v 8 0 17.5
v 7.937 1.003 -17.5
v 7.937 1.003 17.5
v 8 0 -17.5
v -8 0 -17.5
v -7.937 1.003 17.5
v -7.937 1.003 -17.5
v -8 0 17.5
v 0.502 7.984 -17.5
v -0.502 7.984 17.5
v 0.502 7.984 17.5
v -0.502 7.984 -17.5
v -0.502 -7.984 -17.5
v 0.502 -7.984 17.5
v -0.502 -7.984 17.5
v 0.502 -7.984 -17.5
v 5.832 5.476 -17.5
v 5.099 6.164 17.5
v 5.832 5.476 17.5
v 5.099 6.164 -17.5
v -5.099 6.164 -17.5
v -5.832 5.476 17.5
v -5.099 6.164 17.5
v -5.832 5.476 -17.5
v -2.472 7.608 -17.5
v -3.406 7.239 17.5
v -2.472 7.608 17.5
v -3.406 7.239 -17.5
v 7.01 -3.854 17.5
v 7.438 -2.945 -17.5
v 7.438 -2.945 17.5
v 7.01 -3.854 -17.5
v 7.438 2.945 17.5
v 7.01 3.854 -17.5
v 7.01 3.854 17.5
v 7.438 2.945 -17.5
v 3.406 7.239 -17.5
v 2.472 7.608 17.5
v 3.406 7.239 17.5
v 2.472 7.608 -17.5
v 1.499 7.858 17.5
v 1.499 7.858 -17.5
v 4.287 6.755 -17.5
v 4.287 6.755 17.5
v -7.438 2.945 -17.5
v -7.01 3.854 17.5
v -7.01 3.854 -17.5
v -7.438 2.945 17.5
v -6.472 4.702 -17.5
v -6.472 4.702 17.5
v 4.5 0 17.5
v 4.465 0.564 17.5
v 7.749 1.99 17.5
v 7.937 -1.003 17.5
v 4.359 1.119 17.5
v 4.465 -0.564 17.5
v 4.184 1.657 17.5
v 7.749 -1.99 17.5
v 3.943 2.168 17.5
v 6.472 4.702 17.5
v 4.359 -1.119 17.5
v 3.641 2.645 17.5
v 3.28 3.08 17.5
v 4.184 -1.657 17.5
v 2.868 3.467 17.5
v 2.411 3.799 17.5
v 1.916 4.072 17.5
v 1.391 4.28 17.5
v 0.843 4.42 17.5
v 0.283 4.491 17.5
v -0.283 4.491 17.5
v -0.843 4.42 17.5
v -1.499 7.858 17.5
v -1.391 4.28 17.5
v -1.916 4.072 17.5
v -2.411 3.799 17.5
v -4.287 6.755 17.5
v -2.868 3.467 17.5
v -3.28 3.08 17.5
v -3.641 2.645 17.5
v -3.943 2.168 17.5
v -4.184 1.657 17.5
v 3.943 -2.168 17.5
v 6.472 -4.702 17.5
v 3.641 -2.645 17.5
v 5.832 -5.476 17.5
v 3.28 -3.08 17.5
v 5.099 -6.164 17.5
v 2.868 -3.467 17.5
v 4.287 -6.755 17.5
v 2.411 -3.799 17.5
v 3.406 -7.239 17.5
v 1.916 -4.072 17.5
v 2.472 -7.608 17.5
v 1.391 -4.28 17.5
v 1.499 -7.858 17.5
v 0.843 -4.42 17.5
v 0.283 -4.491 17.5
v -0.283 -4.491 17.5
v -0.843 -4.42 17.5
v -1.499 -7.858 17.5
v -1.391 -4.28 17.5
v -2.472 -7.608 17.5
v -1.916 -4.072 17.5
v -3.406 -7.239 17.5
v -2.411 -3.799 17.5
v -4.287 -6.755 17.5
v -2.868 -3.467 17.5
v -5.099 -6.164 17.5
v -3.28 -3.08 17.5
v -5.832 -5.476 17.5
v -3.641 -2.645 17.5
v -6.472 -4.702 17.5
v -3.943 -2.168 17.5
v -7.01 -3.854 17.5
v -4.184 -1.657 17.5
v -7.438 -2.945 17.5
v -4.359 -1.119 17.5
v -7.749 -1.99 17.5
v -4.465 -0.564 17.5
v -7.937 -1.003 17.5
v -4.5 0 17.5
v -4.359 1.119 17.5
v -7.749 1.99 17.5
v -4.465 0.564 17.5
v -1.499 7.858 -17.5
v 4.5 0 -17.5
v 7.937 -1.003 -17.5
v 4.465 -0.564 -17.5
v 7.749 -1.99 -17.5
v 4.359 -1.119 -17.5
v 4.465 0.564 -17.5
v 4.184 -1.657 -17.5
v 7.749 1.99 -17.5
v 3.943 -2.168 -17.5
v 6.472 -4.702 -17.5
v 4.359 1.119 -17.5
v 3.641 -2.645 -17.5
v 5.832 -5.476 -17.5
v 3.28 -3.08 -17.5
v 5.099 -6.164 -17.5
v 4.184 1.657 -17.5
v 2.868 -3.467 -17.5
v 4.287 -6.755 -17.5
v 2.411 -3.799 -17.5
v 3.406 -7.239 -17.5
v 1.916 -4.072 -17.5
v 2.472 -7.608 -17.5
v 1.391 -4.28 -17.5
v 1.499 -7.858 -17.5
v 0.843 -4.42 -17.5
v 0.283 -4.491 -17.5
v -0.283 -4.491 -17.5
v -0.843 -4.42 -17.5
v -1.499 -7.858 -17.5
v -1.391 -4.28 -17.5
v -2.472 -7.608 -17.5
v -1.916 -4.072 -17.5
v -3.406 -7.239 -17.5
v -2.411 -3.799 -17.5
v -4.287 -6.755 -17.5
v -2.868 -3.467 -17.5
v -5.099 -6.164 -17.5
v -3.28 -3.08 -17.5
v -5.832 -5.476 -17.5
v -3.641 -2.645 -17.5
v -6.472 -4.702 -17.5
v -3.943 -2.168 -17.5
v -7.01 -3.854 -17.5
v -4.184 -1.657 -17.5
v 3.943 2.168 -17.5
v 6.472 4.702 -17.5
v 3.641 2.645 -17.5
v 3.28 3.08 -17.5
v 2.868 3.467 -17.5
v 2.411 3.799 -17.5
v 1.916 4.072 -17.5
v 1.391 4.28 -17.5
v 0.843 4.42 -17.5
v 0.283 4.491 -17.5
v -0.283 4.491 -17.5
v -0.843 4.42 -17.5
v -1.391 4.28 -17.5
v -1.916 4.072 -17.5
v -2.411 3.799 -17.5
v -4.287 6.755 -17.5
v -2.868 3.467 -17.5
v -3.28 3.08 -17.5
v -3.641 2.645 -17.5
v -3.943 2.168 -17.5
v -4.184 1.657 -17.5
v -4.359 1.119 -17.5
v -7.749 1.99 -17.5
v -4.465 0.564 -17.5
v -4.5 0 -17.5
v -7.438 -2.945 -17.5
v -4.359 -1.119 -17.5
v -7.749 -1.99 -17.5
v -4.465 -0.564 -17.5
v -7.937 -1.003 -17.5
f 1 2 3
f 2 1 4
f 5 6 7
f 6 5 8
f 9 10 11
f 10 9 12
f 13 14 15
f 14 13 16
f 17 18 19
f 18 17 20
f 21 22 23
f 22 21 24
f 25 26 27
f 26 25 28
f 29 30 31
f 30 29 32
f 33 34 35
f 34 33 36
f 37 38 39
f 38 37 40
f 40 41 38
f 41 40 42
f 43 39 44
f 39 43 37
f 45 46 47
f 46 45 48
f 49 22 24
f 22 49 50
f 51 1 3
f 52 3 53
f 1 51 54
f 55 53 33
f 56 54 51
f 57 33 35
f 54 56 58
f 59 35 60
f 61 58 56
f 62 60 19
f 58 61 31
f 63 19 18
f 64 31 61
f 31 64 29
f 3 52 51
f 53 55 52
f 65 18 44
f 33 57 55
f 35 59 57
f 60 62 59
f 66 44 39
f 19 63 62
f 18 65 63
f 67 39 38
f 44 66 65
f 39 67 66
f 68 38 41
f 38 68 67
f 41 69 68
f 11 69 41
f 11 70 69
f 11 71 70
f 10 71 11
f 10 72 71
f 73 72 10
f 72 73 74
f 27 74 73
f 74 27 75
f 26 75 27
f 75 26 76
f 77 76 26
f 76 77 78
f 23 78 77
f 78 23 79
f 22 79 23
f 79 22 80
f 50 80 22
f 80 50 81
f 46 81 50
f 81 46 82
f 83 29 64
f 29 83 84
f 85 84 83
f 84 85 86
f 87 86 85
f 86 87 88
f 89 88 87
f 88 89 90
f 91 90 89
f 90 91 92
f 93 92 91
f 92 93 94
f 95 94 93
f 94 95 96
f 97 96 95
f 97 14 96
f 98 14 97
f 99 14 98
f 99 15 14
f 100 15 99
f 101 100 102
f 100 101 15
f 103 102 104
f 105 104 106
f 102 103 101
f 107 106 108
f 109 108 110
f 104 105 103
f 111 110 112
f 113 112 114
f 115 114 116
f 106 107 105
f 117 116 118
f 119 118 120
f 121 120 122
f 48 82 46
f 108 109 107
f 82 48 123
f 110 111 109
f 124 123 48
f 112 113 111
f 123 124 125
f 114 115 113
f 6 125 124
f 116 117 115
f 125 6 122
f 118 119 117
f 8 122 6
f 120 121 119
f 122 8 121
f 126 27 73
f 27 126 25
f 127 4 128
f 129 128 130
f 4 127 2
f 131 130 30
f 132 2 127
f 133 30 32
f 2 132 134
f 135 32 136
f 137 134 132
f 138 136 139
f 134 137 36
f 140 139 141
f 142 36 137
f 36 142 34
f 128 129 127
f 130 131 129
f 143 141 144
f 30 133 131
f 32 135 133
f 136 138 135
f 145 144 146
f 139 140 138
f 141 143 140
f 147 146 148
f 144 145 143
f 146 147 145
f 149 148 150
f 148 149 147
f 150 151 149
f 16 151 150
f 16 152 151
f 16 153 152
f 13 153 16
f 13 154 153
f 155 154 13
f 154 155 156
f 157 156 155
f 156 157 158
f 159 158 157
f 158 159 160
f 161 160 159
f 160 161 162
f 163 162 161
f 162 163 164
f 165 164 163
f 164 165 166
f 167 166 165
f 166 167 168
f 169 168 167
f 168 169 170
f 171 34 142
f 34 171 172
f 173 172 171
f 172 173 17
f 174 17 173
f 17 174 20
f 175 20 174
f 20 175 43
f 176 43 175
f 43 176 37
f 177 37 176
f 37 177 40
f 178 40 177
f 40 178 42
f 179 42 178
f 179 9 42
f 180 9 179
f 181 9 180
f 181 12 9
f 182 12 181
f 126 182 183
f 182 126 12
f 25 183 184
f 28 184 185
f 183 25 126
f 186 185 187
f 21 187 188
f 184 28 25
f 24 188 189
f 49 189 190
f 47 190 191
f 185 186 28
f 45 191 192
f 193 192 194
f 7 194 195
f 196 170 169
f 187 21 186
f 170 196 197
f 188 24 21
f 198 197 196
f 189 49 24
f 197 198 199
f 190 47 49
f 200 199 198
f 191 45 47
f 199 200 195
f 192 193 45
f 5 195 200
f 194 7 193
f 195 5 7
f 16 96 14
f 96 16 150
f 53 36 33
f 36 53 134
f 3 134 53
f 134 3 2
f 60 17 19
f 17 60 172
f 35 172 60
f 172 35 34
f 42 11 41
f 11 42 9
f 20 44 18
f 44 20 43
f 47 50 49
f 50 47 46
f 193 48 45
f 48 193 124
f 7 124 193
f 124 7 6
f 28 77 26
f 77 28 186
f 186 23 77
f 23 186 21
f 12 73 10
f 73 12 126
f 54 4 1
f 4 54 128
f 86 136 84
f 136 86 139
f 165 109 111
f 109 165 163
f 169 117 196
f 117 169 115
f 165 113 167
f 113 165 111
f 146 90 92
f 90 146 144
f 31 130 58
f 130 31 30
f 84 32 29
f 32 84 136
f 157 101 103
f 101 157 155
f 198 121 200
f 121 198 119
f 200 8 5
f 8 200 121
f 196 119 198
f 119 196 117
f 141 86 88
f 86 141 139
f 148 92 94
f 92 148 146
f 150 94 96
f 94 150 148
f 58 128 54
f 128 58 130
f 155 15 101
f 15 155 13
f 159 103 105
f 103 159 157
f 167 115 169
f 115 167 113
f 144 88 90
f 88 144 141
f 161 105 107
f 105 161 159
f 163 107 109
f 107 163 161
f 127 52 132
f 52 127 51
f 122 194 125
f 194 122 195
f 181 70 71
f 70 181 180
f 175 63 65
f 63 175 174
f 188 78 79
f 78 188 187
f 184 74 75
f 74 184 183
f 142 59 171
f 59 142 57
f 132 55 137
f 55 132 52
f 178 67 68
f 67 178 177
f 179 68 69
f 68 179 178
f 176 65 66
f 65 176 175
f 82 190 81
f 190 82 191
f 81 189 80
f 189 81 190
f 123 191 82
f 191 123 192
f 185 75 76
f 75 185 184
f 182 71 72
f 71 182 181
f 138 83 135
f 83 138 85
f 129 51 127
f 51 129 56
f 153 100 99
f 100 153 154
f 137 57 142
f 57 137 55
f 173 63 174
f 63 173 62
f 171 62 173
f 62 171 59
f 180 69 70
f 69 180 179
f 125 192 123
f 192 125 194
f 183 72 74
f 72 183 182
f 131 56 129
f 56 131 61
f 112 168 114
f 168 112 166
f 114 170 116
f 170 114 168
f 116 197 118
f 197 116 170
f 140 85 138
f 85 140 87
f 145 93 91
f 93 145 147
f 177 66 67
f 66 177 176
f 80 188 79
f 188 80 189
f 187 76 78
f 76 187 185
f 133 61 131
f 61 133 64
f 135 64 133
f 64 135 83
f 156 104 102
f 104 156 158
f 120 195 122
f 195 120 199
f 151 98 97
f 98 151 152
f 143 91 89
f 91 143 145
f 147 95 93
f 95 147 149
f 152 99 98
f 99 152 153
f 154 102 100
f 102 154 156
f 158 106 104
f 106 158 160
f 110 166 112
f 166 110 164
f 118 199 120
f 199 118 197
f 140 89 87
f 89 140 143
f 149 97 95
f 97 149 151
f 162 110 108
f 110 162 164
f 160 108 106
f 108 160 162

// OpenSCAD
$fn = 50;


difference() {
	union() {
		translate(v = [0, 0, -17.5000000000]) {
			cylinder(h = 35, r = 8.0000000000);
		}
	}
	union() {
		translate(v = [0, 0, -100.0000000000]) {
			cylinder(h = 200, r = 4.5000000000);
		}
	}
}
